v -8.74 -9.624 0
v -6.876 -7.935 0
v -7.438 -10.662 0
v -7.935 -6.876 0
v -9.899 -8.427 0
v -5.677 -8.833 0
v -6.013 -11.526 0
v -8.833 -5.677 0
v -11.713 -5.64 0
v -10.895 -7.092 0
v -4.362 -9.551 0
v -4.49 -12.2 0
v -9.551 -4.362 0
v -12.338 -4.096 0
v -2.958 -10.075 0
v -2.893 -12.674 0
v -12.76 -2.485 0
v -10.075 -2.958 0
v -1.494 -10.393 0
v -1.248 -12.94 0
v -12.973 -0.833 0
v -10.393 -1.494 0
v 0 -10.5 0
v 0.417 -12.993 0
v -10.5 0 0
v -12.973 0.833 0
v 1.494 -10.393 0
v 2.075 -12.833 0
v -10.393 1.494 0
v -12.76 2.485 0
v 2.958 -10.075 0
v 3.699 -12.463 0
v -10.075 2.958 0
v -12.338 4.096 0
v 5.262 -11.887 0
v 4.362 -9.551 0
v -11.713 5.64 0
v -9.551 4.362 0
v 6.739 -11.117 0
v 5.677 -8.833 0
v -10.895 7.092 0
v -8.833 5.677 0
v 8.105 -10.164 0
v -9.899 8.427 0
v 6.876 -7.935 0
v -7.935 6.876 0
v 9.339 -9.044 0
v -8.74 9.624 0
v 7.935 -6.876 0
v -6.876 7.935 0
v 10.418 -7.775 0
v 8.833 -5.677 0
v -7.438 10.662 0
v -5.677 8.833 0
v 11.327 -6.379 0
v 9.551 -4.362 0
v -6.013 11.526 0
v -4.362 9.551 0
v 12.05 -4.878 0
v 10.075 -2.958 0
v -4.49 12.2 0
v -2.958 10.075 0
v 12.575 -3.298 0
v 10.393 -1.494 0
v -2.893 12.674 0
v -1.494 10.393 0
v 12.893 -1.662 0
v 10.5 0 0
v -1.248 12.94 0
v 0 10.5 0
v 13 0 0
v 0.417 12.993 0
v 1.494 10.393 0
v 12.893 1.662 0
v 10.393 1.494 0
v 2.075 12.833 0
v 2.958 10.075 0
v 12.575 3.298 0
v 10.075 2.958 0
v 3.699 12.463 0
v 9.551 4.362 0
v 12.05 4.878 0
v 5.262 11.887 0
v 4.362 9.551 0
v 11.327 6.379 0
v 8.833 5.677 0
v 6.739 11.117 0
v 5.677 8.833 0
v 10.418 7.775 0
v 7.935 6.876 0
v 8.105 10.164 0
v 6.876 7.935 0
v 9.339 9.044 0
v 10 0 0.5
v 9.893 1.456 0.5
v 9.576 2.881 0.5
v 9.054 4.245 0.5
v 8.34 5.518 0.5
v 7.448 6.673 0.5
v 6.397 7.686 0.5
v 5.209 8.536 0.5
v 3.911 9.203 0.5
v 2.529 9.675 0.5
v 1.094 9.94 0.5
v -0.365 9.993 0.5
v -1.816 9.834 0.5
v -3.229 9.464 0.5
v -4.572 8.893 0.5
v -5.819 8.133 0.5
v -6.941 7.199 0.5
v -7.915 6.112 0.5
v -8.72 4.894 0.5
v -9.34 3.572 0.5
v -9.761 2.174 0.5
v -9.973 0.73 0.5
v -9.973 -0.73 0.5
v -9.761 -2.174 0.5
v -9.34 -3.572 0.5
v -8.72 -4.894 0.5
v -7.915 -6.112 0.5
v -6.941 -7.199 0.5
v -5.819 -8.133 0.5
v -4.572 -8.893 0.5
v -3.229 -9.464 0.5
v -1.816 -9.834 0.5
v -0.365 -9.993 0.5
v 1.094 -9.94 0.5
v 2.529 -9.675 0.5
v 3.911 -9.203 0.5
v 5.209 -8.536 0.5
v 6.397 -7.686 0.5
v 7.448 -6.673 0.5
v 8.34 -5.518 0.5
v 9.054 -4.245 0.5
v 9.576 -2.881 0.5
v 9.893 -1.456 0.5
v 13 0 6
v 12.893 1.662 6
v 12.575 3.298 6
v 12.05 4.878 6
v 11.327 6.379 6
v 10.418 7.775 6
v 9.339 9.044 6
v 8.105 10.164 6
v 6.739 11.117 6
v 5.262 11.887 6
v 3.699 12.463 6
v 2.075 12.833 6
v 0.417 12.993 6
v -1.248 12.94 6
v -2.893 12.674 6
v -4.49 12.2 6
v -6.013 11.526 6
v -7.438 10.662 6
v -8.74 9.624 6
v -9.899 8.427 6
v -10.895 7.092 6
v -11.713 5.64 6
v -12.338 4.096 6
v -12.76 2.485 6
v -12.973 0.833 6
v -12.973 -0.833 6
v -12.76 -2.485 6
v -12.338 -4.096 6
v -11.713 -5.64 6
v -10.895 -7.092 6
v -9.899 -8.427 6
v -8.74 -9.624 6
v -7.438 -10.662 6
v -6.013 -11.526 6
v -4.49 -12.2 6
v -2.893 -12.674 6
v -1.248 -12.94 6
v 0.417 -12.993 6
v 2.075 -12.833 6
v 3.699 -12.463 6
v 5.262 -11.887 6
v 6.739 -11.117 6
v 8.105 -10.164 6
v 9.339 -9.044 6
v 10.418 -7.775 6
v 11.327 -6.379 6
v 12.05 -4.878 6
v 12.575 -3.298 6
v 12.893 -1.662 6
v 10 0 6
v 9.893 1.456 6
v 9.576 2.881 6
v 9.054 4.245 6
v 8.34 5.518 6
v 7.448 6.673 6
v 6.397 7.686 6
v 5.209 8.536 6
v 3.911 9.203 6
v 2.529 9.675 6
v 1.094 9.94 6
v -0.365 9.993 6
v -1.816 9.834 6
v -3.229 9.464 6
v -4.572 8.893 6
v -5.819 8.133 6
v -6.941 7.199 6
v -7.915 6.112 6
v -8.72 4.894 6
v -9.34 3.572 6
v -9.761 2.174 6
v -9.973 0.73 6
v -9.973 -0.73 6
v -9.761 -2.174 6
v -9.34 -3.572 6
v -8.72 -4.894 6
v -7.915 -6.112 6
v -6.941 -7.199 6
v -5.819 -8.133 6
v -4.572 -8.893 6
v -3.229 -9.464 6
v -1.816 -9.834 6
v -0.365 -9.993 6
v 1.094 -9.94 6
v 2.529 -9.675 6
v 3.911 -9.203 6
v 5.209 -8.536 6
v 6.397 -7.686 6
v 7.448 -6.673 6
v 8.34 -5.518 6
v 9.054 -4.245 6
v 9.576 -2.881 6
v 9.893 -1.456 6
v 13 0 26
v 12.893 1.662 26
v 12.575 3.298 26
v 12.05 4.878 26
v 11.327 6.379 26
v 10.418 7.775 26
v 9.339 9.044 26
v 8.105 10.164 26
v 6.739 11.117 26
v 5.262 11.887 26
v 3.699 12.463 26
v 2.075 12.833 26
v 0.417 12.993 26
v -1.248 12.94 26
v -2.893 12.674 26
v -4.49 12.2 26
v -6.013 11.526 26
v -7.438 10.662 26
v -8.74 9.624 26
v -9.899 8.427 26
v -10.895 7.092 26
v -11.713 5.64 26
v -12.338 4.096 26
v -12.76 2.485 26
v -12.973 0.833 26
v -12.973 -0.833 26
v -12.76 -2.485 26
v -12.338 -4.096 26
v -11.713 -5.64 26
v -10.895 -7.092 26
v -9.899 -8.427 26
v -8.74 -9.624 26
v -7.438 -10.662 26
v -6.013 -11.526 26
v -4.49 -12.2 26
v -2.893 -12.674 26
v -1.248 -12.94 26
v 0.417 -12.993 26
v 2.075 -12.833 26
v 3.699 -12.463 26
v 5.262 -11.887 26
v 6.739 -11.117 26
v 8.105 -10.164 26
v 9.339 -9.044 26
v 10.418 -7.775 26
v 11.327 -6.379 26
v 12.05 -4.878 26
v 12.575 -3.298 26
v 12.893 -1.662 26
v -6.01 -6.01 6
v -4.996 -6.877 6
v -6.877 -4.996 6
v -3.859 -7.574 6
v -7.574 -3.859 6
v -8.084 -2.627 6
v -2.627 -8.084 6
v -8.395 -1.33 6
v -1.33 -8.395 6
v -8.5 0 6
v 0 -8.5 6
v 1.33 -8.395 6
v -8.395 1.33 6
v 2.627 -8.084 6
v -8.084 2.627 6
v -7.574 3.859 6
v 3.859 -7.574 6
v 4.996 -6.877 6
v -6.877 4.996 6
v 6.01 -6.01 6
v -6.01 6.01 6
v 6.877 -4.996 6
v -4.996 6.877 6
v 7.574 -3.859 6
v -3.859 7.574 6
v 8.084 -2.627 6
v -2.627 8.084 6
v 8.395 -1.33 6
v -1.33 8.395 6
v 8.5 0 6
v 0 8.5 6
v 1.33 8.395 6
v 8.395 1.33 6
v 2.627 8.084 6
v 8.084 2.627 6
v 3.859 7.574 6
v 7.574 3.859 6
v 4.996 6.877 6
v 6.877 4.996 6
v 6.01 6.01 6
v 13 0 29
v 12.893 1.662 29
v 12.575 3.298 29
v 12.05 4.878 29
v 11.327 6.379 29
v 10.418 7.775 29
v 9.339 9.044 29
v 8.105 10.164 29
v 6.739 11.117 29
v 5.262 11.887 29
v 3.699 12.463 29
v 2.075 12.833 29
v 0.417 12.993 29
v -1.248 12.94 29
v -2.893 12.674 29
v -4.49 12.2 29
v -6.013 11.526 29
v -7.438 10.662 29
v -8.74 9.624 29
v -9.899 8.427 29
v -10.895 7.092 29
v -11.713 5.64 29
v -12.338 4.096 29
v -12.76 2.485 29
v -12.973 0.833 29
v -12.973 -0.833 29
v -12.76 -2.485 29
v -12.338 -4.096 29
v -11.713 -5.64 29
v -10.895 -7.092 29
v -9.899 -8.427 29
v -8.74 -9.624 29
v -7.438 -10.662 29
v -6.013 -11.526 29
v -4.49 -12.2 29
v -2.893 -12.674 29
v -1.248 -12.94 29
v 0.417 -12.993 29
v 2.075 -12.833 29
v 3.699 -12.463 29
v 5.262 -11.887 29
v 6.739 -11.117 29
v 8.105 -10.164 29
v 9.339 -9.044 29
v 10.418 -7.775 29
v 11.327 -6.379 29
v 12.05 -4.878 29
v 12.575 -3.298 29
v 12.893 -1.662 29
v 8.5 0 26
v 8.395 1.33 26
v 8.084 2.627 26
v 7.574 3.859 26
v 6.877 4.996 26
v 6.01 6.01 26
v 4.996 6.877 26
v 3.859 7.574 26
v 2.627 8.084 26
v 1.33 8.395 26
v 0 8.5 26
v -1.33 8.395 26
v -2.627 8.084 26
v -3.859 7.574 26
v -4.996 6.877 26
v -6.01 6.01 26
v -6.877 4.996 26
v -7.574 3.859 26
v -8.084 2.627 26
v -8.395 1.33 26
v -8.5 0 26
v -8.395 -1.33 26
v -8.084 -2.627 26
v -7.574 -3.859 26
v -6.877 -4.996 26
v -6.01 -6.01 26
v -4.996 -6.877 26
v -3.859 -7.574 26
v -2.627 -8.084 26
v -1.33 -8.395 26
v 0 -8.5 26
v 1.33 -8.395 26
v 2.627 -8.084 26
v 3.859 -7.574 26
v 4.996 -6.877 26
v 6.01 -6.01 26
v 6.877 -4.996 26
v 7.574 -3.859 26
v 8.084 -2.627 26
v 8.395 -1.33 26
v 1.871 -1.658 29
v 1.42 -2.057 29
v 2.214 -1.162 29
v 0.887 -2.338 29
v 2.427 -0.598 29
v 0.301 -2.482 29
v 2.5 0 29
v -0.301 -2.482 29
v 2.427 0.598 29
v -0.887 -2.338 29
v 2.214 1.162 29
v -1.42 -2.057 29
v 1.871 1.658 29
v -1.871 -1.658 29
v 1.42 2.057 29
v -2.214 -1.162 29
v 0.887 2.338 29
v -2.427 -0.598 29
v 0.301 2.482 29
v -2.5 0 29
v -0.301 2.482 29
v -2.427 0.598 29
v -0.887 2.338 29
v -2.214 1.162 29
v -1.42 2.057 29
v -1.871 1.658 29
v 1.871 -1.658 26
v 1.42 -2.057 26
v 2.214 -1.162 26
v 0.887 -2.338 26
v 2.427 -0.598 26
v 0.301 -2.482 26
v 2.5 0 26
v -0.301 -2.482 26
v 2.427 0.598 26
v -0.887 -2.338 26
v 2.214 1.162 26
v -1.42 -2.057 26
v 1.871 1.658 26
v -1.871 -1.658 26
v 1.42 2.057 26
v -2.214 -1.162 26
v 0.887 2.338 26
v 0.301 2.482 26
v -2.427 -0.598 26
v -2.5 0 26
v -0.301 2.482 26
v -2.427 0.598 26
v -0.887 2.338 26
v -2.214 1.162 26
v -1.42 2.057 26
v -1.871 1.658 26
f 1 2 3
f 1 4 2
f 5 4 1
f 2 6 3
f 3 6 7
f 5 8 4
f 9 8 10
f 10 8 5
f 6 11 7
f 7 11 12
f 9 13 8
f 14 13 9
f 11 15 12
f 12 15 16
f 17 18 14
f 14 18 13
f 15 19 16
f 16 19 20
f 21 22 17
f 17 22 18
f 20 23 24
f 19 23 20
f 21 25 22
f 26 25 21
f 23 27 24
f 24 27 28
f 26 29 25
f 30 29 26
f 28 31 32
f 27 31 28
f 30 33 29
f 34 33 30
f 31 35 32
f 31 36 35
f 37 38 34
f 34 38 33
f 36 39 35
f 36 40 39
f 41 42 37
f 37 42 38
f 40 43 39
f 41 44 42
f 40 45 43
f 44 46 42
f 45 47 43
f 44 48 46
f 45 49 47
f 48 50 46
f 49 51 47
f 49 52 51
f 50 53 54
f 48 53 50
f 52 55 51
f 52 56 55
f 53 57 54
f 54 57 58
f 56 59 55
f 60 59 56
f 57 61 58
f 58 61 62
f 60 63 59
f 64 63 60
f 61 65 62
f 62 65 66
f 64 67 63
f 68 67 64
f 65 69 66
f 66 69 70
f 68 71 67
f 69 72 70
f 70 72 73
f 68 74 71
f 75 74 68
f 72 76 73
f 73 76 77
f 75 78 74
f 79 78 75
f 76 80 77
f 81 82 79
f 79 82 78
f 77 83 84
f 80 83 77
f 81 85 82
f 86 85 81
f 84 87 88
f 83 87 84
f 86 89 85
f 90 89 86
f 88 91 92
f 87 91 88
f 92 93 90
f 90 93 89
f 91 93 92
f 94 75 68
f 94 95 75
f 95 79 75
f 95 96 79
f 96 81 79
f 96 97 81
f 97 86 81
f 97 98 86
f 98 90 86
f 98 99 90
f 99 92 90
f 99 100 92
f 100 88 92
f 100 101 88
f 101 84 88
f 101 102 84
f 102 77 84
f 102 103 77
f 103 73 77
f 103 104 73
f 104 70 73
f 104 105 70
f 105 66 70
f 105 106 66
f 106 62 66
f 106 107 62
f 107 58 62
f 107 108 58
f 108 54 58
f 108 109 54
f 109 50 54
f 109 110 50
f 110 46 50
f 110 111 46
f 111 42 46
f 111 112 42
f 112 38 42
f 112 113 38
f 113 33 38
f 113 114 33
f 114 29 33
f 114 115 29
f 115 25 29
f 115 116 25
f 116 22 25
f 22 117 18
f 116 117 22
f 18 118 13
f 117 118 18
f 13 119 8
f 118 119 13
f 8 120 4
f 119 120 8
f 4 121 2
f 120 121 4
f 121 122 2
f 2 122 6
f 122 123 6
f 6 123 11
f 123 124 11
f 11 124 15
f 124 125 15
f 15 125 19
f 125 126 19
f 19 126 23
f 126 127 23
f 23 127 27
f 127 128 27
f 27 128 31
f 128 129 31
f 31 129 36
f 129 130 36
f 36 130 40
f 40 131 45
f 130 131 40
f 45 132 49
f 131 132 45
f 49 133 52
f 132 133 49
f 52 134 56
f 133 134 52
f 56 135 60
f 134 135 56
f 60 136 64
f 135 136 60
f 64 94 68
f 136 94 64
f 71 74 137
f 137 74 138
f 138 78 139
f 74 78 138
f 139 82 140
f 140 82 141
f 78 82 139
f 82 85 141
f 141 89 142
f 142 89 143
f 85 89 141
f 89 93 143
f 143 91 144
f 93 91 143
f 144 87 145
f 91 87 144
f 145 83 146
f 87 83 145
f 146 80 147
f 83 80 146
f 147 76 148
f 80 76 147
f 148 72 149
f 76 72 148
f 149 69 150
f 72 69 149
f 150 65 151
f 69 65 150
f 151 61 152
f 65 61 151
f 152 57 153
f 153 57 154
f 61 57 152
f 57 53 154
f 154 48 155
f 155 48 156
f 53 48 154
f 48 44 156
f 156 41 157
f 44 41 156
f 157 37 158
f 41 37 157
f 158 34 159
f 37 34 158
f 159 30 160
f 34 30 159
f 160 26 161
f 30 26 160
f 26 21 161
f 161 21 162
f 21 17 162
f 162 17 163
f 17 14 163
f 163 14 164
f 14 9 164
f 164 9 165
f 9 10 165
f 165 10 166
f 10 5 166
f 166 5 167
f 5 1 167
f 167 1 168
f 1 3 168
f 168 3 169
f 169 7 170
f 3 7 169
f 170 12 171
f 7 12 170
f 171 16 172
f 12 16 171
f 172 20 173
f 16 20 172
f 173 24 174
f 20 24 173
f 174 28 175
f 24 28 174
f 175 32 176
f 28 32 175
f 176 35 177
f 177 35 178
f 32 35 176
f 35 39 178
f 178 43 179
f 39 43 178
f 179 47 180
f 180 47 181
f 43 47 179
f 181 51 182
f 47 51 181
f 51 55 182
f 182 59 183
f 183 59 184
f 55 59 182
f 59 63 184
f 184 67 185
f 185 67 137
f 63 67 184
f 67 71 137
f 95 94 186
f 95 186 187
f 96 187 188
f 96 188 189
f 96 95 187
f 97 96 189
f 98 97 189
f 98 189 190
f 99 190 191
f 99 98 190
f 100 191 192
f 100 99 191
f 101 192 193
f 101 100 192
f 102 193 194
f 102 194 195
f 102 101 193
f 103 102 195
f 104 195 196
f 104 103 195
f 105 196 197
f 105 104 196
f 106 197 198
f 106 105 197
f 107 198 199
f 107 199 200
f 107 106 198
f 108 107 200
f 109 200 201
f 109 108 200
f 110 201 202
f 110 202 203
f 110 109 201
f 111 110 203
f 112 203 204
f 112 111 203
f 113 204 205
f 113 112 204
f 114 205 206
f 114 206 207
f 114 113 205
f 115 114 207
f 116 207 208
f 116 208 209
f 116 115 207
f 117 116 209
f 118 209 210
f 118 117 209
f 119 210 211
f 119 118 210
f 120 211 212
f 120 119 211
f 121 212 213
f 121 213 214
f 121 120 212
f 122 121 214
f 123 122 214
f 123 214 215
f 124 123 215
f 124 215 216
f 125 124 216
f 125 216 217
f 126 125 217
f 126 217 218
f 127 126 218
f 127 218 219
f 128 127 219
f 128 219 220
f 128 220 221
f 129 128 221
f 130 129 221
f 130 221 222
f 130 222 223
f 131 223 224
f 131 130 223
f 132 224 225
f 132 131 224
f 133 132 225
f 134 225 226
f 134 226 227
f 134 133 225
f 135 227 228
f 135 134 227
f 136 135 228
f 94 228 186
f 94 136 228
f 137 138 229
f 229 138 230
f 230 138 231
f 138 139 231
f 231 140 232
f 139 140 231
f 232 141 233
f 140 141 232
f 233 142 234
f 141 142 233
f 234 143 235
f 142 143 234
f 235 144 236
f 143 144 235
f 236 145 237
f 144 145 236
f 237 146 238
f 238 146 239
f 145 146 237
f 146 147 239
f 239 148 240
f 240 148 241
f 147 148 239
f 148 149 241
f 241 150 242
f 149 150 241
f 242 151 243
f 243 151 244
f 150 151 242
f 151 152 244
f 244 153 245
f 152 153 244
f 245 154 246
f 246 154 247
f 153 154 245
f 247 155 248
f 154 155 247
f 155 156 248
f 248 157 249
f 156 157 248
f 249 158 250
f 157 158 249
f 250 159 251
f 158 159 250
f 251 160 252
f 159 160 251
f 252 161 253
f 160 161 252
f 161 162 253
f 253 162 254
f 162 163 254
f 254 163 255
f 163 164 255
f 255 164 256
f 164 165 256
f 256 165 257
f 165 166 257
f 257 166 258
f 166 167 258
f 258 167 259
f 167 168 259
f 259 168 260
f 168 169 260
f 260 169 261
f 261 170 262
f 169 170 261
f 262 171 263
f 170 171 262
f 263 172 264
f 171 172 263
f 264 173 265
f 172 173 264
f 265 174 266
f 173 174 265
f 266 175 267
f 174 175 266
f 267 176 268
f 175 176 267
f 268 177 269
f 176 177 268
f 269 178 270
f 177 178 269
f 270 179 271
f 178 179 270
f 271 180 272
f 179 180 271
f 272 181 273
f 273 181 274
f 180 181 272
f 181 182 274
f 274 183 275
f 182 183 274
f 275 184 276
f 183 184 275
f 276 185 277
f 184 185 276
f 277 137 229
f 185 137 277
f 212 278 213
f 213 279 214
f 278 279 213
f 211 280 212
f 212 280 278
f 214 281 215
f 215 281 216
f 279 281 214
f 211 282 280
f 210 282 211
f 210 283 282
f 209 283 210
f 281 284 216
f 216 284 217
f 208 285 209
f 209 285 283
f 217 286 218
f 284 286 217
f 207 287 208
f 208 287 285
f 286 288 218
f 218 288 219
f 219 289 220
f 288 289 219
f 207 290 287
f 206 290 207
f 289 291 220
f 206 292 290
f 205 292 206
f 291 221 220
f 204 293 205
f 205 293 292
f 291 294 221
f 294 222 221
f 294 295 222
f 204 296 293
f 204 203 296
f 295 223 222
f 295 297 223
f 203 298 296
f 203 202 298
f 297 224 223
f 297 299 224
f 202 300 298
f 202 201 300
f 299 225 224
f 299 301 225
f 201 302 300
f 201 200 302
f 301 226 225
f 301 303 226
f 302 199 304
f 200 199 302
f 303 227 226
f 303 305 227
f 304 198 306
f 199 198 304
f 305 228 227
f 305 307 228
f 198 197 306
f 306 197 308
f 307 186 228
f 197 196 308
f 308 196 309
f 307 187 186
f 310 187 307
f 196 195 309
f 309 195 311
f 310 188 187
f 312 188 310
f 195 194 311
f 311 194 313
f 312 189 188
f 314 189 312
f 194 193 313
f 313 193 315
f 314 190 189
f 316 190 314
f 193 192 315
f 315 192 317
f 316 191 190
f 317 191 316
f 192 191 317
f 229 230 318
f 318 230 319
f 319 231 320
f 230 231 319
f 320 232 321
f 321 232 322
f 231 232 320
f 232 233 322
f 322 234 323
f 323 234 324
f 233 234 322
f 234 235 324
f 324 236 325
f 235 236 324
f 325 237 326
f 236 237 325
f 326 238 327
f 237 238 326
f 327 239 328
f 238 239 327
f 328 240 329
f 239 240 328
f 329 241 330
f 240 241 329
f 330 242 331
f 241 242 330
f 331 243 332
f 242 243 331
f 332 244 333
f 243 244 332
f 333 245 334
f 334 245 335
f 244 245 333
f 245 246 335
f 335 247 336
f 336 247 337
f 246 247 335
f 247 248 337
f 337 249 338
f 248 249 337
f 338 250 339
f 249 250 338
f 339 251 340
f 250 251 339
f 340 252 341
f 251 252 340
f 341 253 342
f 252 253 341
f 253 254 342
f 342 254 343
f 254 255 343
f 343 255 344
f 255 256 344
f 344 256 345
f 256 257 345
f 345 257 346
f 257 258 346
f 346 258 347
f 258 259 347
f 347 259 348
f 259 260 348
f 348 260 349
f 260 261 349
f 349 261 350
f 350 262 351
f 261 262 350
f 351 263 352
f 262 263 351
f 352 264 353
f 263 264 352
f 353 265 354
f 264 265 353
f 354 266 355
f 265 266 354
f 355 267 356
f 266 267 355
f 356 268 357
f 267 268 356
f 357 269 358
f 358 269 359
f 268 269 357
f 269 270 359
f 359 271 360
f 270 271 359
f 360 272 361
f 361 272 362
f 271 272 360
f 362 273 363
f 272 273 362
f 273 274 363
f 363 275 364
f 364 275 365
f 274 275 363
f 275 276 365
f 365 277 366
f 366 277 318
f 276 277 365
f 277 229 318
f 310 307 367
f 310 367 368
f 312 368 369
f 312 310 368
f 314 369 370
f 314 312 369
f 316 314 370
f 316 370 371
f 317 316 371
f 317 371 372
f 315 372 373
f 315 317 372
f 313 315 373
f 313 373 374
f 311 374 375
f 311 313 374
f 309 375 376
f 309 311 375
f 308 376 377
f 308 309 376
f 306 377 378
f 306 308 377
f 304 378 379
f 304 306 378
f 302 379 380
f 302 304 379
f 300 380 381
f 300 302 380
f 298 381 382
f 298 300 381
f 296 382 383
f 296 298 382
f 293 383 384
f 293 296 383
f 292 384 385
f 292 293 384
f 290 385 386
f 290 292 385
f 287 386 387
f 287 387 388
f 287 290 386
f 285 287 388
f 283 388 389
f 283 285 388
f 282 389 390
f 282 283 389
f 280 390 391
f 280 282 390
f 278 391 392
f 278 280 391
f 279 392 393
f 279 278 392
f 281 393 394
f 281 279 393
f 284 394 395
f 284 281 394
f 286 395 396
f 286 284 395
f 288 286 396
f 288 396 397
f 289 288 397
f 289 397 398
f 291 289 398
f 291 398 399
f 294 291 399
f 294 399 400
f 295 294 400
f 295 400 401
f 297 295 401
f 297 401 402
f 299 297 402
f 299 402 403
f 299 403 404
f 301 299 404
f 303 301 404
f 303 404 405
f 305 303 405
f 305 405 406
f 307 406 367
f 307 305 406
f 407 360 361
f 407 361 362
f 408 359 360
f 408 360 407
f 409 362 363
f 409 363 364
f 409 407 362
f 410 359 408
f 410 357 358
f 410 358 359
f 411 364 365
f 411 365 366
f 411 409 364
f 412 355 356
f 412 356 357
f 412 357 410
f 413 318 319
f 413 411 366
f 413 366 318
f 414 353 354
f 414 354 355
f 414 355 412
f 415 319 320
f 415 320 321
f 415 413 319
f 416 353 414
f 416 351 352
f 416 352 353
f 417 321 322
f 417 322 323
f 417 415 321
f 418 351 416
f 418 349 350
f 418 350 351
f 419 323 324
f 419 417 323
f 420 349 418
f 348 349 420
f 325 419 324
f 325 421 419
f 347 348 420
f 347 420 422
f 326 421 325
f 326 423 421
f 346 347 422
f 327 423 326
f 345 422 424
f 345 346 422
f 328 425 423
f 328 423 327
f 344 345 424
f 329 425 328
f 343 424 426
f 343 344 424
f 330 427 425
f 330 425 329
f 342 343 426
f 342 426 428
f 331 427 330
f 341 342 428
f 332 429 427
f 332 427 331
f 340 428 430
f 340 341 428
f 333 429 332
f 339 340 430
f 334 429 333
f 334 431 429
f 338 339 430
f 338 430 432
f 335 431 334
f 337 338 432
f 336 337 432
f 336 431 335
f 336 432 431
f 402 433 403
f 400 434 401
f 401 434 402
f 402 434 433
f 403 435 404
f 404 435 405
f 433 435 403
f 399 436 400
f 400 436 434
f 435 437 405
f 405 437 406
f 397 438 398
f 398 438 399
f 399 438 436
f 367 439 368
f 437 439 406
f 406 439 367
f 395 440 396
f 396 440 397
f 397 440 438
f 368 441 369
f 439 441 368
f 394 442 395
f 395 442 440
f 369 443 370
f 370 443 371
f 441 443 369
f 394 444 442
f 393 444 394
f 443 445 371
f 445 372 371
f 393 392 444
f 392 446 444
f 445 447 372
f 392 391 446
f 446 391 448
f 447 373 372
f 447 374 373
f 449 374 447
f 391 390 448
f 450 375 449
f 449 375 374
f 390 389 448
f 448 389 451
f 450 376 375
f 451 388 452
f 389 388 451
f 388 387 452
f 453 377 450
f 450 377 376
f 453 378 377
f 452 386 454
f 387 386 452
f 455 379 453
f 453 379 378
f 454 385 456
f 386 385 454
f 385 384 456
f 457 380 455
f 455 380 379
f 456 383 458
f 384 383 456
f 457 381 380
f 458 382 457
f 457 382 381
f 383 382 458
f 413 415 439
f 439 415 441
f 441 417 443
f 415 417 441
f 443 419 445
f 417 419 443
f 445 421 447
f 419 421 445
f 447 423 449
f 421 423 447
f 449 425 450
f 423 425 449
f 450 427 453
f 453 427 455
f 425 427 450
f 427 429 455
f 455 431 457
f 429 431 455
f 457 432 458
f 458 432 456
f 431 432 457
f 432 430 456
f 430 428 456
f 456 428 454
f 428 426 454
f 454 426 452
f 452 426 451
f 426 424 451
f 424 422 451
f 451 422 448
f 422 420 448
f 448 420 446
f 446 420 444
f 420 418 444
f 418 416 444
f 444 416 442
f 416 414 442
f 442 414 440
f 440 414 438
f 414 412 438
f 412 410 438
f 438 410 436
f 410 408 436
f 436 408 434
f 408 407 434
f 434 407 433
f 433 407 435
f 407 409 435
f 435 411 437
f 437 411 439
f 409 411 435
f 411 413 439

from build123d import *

# Parameters (mm, degrees)
SKETCH_R      = 13
SKETCH_R_2    = 10
PAD_DEPTH     = 6
SKETCH001_R   = 13
SKETCH001_R_2 = 8.5
PAD001_DEPTH  = 20
SKETCH002_R   = 13
PAD002_DEPTH  = 3
SKETCH003_R   = 2.5
POCKET_DEPTH  = 29.001
CHAMFER_SIZE  = 0.5


with BuildPart() as part:
    # Sketch → Pad (new body)
    with BuildSketch(Plane.XY):
        Circle(SKETCH_R)
        Circle(SKETCH_R_2, mode=Mode.SUBTRACT)
    extrude(amount=PAD_DEPTH)

    # Sketch001 (on Face4 of Pad) → Pad001 (join)
    with BuildSketch(Plane.XY.offset(6)):
        Circle(SKETCH001_R)
        Circle(SKETCH001_R_2, mode=Mode.SUBTRACT)
    extrude(amount=PAD001_DEPTH)

    # Sketch002 (on Face5 of Pad001) → Pad002 (join)
    with BuildSketch(Plane.XY.offset(26)):
        Circle(SKETCH002_R)
    extrude(amount=PAD002_DEPTH)

    # Sketch003 (on Face7 of Pad002) → Pocket (cut, through all)
    with BuildSketch(Plane.XY.offset(29)):
        Circle(SKETCH003_R)
    extrude(amount=-POCKET_DEPTH, mode=Mode.SUBTRACT)

    # Chamfer
    chamfer_edges = [part.edges().sort_by_distance(p)[0] for p in [
        (-10, 0, 0),
    ]]
    chamfer(chamfer_edges, length=CHAMFER_SIZE)


solid = part.part
